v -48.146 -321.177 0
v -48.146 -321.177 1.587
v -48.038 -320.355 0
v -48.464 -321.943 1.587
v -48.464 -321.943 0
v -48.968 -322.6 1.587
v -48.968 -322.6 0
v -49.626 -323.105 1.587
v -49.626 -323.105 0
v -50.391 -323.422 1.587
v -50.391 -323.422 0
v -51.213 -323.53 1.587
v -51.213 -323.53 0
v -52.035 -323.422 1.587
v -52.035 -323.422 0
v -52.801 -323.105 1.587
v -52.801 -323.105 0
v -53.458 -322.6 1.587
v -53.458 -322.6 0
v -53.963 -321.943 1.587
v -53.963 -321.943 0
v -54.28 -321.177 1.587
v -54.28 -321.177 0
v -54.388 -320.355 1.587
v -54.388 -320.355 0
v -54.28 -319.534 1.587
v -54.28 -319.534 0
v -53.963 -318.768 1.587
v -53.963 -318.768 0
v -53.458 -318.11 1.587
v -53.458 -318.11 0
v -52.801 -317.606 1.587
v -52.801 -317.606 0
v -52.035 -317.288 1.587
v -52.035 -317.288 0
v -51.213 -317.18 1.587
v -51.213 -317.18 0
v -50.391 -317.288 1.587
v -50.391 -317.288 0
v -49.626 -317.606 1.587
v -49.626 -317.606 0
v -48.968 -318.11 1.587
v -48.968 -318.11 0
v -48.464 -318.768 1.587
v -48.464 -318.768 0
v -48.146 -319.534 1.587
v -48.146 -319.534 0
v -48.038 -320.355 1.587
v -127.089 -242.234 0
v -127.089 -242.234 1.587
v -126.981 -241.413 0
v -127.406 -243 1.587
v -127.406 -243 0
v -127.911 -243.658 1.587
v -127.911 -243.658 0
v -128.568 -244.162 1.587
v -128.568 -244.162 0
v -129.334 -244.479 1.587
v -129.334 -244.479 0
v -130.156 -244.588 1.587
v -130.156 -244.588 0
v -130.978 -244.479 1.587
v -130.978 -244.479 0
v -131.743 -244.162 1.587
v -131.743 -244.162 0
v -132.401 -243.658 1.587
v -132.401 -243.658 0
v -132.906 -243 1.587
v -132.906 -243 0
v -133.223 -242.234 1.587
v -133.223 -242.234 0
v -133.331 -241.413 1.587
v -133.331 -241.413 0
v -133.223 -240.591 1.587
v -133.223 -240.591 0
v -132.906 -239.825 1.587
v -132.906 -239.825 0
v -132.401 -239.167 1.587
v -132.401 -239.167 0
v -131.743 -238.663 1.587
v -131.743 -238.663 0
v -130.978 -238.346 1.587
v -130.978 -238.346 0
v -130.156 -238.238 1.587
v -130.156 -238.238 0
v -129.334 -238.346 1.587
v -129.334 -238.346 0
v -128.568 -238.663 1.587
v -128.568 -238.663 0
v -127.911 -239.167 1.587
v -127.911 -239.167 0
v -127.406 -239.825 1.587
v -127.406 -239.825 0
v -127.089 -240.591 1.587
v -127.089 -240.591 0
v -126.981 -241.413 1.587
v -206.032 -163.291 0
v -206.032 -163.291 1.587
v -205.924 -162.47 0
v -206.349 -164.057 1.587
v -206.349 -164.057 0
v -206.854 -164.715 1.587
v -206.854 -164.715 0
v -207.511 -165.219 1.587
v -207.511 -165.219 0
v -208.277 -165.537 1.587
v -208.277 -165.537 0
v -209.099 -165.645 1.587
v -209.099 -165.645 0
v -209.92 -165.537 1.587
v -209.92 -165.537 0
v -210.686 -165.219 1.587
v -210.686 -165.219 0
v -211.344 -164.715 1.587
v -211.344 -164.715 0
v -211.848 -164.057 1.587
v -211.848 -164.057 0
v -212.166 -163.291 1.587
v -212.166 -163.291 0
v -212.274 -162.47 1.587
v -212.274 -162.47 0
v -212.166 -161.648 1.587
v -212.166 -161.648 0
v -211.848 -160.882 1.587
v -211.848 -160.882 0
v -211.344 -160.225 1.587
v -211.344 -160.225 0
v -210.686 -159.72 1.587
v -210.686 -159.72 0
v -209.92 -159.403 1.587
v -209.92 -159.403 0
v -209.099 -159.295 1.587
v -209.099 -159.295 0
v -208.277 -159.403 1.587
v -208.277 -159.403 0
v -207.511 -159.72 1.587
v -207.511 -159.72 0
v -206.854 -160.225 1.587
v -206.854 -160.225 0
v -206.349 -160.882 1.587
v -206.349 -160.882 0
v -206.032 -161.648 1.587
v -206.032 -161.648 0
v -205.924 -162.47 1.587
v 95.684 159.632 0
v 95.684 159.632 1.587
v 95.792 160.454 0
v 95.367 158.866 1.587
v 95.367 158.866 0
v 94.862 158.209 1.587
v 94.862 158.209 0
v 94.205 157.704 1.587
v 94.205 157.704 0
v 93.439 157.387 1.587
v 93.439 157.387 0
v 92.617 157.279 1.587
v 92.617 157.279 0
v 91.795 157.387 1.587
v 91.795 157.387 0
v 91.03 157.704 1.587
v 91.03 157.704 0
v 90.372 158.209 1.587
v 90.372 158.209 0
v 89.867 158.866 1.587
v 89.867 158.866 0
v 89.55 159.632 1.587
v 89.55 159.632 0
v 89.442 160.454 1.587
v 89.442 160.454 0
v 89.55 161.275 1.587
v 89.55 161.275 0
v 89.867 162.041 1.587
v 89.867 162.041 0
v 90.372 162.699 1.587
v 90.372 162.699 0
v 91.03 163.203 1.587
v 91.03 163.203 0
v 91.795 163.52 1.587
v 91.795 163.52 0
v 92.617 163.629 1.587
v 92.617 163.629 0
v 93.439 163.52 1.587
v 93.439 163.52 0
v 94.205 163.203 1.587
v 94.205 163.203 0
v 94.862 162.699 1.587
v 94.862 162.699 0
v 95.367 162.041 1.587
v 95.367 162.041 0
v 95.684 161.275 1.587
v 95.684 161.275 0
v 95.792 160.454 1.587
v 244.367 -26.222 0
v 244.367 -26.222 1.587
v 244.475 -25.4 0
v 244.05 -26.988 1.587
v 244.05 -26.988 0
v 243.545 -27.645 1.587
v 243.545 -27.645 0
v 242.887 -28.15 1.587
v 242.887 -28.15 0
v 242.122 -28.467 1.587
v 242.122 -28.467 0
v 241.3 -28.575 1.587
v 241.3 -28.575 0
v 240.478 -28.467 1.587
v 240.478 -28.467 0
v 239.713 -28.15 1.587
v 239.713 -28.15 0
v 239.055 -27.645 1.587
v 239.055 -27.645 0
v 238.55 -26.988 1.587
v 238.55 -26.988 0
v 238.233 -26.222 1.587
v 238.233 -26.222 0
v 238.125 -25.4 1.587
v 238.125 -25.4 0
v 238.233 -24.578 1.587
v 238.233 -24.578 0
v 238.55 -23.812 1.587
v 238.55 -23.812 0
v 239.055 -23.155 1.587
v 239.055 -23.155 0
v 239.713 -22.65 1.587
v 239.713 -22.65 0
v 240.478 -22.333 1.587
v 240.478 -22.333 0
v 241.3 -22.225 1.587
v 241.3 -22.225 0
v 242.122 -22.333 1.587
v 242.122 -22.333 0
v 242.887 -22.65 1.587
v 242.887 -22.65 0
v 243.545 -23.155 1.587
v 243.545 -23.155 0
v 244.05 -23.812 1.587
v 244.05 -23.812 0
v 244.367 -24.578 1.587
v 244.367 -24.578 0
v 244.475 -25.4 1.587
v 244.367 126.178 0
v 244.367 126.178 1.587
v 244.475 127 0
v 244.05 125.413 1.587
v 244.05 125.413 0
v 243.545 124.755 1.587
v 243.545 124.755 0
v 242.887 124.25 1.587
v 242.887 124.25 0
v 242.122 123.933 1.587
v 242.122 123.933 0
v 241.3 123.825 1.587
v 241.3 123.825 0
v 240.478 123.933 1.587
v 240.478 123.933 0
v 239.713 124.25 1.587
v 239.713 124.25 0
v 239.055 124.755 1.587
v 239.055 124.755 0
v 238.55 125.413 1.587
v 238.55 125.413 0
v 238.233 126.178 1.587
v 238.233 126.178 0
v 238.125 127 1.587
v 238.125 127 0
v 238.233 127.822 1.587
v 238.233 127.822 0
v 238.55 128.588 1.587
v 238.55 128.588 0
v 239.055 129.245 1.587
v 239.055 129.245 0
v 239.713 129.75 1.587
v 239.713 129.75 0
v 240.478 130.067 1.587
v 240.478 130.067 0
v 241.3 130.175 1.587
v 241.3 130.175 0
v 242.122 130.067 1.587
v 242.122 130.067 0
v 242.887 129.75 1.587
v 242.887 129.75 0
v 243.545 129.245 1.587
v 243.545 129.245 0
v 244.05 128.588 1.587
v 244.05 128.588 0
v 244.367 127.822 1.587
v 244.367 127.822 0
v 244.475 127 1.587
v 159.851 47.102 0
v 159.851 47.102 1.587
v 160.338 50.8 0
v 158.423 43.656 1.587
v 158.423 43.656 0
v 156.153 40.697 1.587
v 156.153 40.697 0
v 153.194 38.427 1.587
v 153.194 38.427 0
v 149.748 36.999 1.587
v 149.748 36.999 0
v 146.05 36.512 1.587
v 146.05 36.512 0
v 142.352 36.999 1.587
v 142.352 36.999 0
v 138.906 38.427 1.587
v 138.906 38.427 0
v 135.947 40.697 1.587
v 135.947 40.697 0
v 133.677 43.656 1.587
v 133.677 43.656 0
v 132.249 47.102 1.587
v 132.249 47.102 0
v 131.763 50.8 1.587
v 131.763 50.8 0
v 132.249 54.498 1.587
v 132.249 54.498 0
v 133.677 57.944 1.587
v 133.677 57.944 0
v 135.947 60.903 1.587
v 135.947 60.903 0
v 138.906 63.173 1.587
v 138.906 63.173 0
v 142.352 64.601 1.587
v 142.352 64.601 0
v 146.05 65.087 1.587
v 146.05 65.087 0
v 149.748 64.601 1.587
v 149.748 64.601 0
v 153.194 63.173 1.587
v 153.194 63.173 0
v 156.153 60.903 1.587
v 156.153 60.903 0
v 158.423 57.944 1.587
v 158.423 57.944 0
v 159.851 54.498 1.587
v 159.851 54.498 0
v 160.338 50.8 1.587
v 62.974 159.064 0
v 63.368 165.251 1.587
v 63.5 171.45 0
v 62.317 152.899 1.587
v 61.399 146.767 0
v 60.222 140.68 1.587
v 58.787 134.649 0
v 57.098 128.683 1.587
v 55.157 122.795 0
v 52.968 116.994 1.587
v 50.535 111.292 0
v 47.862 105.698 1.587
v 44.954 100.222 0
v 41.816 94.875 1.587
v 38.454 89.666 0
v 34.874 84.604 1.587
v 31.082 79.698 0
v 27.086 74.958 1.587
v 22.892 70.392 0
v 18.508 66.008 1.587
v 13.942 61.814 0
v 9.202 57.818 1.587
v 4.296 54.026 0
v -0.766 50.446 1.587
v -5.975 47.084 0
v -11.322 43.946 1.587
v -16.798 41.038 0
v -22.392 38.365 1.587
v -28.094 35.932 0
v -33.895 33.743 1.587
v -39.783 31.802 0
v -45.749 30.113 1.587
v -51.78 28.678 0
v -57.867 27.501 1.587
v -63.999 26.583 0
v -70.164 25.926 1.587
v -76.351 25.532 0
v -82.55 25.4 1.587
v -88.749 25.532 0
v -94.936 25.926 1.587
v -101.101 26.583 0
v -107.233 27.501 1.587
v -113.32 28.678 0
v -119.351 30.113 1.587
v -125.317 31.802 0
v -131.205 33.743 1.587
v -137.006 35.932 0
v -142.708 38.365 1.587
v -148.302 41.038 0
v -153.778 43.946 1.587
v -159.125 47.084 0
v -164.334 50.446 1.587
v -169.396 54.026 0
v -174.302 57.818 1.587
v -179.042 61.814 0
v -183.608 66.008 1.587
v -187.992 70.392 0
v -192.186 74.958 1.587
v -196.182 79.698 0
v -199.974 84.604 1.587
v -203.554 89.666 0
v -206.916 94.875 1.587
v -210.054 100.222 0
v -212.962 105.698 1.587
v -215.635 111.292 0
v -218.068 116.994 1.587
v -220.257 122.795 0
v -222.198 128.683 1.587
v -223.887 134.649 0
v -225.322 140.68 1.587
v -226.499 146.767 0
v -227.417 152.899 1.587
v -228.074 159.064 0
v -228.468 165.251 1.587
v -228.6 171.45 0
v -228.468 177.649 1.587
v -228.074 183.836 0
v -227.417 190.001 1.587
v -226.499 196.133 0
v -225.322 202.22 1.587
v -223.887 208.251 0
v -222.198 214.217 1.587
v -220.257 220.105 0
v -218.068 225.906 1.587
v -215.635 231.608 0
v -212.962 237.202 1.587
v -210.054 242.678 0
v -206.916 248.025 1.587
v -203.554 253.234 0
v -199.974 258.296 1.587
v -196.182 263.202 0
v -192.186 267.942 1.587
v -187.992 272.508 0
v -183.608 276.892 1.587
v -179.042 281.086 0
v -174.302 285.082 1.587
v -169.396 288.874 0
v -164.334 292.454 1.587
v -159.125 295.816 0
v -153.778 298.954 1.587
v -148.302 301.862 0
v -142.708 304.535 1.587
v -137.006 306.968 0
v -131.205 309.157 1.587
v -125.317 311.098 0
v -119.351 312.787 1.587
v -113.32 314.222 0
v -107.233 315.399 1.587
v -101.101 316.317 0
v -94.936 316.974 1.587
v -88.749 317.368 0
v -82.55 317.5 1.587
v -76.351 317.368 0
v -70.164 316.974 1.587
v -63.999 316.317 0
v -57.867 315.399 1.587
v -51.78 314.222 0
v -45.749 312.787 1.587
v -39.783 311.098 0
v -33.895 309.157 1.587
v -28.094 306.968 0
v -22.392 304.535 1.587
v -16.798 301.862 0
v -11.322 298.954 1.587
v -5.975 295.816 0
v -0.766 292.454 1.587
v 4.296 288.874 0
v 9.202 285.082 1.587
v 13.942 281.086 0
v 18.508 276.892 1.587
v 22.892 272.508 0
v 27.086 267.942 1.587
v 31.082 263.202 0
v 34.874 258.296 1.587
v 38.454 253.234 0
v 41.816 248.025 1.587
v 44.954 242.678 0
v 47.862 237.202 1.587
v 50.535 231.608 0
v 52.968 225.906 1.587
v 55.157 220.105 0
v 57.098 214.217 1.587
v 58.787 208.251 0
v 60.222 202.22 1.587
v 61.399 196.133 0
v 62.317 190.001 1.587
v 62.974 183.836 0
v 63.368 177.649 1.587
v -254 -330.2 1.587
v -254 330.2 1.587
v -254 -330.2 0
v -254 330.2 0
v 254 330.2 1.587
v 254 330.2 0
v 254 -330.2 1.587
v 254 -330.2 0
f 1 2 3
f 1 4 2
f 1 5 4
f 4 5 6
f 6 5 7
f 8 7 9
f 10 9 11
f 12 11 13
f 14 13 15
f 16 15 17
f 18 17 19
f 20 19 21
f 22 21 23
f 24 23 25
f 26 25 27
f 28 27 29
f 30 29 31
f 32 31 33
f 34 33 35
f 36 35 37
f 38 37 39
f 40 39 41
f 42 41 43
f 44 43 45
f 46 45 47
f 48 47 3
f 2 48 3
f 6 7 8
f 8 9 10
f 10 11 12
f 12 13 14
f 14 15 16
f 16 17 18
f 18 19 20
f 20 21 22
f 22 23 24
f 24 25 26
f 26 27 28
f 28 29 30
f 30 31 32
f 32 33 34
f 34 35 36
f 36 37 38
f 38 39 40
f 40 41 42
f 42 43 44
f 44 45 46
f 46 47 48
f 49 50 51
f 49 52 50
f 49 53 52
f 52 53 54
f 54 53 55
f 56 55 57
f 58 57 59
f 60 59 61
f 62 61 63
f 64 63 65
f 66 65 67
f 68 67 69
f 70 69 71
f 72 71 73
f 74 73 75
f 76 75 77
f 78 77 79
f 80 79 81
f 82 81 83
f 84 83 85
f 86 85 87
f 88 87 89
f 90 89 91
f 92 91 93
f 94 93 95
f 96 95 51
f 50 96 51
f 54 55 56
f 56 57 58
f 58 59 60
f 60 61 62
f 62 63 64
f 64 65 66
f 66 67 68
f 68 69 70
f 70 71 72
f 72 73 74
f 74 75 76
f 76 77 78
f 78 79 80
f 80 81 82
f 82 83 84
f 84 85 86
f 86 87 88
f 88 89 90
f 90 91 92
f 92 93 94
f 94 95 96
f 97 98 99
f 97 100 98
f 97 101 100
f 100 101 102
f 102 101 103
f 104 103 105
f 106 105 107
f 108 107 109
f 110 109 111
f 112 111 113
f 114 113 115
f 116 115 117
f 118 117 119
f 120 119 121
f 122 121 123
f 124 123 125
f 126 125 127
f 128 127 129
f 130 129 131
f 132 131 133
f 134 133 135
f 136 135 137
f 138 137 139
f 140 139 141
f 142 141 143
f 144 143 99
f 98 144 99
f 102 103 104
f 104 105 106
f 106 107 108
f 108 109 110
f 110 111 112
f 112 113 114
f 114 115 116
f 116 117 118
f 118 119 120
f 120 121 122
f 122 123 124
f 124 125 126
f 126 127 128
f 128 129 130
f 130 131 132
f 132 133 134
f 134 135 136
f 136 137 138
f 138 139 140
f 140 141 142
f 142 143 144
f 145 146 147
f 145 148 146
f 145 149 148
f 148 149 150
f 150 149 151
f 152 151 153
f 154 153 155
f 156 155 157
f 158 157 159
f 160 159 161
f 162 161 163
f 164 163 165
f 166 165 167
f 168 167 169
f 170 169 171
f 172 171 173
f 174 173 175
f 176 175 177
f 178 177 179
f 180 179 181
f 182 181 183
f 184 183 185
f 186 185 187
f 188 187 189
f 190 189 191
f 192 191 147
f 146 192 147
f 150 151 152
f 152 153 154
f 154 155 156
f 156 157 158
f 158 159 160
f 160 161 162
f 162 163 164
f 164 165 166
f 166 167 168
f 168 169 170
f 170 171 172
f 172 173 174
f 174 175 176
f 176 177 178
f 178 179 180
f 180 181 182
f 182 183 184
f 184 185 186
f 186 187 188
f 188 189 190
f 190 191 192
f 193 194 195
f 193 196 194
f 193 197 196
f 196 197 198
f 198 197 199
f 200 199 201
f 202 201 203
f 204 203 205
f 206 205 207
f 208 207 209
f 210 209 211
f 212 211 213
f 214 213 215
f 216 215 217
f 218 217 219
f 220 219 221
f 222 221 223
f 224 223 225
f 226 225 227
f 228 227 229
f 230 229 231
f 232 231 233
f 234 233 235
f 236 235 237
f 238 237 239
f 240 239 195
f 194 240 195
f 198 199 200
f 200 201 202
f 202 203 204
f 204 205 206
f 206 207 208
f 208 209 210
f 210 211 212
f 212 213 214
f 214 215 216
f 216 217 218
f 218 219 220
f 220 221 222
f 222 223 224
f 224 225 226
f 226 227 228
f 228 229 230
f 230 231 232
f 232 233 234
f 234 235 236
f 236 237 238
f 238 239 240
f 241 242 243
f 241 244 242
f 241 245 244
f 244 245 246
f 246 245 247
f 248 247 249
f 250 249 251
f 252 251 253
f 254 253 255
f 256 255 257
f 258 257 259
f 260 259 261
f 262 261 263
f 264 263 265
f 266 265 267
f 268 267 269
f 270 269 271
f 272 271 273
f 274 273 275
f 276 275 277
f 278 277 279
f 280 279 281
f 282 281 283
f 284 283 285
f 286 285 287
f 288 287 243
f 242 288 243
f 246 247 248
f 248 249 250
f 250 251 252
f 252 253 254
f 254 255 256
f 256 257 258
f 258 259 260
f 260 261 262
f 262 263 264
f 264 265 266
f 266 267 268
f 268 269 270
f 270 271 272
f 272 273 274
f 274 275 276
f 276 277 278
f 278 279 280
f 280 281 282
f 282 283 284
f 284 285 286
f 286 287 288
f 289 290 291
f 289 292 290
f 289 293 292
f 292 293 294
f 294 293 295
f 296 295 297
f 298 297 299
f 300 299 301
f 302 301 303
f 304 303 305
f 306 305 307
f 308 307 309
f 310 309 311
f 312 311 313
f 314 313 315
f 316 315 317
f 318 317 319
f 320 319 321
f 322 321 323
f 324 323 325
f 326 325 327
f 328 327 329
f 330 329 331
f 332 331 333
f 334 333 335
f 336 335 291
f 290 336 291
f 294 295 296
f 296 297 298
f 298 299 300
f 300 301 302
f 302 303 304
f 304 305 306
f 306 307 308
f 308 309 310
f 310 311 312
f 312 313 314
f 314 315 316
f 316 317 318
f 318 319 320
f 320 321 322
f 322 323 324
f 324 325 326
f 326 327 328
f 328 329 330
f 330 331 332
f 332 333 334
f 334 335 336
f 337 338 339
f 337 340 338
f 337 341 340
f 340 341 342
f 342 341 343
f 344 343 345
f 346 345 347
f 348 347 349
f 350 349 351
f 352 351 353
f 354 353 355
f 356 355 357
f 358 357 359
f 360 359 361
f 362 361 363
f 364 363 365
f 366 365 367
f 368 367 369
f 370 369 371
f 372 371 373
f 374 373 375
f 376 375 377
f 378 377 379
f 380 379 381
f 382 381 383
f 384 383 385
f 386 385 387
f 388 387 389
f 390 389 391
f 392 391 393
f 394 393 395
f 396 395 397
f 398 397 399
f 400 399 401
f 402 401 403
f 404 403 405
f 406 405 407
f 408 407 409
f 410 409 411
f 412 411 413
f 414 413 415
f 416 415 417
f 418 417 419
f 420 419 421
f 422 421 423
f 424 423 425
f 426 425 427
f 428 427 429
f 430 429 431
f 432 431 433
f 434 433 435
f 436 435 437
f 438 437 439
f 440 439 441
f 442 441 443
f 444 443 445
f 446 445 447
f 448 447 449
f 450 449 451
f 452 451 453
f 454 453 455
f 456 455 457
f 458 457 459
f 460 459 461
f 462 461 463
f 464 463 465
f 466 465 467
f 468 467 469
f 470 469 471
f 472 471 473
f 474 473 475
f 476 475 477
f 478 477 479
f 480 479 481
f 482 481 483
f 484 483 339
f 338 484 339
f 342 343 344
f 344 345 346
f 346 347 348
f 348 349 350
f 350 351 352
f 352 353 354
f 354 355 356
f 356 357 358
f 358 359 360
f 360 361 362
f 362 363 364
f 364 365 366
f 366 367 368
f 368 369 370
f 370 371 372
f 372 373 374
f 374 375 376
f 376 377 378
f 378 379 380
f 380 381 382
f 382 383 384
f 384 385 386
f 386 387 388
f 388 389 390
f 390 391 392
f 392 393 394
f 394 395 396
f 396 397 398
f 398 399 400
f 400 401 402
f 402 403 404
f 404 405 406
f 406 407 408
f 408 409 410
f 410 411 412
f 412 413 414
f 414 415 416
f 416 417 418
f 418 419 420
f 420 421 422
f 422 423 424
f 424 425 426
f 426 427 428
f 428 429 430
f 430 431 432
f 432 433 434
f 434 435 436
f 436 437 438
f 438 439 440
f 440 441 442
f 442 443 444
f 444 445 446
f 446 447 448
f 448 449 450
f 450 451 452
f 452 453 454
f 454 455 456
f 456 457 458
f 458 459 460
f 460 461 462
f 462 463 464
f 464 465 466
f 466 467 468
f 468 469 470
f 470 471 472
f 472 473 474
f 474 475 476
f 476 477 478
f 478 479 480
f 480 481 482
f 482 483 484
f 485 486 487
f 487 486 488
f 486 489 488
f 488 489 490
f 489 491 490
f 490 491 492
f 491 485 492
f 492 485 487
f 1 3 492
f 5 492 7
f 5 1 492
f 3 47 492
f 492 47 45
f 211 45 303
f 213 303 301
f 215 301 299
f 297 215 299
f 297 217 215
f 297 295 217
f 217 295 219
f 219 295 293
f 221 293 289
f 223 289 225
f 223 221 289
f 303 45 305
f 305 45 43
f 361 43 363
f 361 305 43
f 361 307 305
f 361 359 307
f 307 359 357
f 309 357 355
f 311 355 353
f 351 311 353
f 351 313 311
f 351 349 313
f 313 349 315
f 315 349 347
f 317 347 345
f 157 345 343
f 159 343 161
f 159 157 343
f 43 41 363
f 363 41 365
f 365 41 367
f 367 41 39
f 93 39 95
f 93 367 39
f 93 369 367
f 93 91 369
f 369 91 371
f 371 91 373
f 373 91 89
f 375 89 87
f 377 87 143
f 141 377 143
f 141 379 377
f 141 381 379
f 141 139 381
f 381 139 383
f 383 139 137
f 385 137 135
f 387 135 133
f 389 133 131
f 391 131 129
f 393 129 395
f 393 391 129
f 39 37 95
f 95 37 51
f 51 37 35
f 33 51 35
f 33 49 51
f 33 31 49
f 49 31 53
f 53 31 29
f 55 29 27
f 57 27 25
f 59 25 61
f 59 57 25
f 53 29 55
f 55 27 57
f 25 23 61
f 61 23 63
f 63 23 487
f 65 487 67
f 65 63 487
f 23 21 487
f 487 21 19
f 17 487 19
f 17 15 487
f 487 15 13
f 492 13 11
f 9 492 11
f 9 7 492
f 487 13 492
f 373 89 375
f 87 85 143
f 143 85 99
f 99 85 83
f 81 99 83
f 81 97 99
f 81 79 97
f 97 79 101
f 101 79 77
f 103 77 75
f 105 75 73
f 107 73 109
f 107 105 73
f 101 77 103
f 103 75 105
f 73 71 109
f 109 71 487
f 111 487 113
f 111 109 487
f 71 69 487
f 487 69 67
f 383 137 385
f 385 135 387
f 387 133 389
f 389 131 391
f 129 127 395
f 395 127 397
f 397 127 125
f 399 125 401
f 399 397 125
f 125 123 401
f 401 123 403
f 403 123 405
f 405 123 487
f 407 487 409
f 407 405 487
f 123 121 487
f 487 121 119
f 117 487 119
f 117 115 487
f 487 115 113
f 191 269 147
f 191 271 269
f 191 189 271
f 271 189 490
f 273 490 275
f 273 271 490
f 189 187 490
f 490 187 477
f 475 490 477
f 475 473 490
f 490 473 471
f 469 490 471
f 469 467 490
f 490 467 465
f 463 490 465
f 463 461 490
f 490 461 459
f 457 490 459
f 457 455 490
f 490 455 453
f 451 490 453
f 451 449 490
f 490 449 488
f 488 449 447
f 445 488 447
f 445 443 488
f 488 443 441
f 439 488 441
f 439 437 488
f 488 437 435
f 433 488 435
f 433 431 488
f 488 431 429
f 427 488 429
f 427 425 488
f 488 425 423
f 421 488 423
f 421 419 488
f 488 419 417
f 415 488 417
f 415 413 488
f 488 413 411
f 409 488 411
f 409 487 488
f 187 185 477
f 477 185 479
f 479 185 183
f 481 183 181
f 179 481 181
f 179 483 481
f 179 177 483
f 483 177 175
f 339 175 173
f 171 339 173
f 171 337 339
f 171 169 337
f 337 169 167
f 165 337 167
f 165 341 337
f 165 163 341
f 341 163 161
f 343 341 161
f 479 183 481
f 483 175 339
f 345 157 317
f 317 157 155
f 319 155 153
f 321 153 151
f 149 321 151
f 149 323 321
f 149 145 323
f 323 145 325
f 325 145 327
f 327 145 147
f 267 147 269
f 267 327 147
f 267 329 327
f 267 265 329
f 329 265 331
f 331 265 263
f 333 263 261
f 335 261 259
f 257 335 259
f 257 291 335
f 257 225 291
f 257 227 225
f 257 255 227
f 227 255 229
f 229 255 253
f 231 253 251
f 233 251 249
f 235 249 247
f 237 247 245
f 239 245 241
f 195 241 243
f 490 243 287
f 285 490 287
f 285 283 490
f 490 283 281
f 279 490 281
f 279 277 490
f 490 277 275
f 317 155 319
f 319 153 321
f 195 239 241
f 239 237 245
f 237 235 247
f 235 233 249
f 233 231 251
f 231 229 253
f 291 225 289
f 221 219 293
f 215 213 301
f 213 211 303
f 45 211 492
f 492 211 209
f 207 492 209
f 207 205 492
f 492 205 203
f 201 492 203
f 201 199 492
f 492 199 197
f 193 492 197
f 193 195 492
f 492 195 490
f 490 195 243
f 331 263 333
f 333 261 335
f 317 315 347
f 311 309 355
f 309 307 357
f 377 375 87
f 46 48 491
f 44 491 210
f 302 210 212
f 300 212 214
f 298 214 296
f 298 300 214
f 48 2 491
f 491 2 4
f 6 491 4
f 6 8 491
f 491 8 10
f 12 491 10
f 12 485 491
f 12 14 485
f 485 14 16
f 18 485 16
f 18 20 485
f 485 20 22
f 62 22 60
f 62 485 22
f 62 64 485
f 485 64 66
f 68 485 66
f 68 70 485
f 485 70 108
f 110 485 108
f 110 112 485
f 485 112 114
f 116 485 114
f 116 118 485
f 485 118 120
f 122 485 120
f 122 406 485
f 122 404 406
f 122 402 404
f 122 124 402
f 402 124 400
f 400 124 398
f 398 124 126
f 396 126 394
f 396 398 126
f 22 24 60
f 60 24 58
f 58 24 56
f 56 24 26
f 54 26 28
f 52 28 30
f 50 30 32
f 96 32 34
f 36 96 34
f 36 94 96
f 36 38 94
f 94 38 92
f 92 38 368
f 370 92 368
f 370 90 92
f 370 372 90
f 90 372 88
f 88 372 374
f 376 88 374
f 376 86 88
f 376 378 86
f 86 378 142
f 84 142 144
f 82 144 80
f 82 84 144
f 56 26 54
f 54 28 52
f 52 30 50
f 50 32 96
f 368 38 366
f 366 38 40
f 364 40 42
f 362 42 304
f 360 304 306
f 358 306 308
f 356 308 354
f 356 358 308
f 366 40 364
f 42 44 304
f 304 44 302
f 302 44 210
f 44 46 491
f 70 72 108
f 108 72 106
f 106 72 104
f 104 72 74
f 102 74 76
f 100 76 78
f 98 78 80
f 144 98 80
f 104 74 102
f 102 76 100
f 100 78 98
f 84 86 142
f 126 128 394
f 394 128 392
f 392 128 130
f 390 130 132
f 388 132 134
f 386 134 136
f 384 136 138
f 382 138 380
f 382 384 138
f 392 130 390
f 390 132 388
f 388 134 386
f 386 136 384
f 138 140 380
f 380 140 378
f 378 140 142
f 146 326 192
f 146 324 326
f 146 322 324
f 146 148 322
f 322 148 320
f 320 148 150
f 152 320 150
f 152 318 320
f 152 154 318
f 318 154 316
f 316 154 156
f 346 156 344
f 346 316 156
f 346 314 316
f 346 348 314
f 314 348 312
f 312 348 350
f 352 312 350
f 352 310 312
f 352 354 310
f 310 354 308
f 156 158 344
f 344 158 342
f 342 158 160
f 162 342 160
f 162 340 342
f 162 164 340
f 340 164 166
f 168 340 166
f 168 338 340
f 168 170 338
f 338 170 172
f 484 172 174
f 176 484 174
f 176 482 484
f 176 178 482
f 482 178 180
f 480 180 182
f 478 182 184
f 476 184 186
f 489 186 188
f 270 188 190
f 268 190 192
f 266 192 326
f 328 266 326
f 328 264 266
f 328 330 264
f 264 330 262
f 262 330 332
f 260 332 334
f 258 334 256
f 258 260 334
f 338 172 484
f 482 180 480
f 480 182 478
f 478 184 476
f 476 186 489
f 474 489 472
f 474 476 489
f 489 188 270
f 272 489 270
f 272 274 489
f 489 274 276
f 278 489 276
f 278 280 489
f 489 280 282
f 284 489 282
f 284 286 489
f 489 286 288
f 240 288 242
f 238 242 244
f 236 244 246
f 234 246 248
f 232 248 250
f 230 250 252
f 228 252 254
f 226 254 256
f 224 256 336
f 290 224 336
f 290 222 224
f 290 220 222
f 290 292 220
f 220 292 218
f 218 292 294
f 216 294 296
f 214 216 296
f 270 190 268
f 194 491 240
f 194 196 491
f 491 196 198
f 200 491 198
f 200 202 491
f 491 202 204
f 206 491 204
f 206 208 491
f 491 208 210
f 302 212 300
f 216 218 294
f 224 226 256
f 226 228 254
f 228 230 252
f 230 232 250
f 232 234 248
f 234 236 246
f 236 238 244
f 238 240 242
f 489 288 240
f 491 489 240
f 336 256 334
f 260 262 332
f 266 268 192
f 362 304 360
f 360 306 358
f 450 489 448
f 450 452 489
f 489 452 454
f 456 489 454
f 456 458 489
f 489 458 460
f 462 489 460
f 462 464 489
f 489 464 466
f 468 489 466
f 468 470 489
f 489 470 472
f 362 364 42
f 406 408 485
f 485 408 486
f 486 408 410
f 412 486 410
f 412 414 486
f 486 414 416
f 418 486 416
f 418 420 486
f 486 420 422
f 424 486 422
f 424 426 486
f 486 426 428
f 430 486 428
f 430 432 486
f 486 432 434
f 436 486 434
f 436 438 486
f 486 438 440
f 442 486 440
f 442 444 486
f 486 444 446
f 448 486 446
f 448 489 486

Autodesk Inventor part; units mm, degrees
ref_plane "YZ Plane" through (0, 0, 0) normal (1, 0, 0) x (0, 1, 0)
ref_plane "XZ Plane" through (0, 0, 0) normal (0, 1, 0) x (-1, 0, 0)
ref_plane "XY Plane" through (0, 0, 0) normal (0, 0, 1) x (1, 0, 0)
sketch "Sketch1" plane through (0, 0, 0) normal (0, 0, 1) x (1, 0, 0)
  line L0 (-254, -330.2) -> (254, -330.2)
  line L1 (254, -330.2) -> (254, 330.2)
  line L2 (254, 330.2) -> (-254, 330.2)
  line L3 (-254, 330.2) -> (-254, -330.2)
  point P0 (0, 0)
  dimension "d0" = 508
  dimension "d1" = 660.4
  dimension "d2" = 330.2
  dimension "d3" = 254
extrude "Extrusion1" add sketch "Sketch1" along normal blind 1.5875
sketch "Sketch2" plane through (0, 0, 1.5875) normal (0, 0, 1) x (1, 0, 0)
  line L0 (-254, -330.2) -> (-254, 330.2) projected
  line L1 (254, -330.2) -> (-254, -330.2) projected
  line L2 (-254, 330.2) -> (254, 330.2) projected
  circle A0 centre (-82.55, 171.45) radius 146.05
  circle A1 centre (146.05, 50.8) radius 95.25
  arc A2 (-228.6, 50.8) -> (146.05, -323.85) centre (146.05, 50.8) ccw
  line L3 (-228.6, 50.8) -> (-228.6, 203.2)
  line L4 (146.05, -323.85) -> (222.25, -323.85)
  circle A3 centre (146.05, 50.8) radius 14.2875
  circle A4 centre (76.4372, 288.4526) radius 3.175
  circle A5 centre (171.4841, 288.4526) radius 3.175
  line L5 (254, 330.2) -> (254, -330.2) projected
  point P0 (0, 0)
  point P1 (-82.55, 317.5)
  point P2 (-10.4279, 298.45)
  dimension "d6" = 292.1
  dimension "d7" = 158.75
  dimension "d8" = 171.45
  dimension "d11" = 190.5
  dimension "d16" = 152.4
  dimension "d19" = 76.2
  dimension "d23" = 28.575
  dimension "d27" = 279.4
  dimension "d28" = 25.4
  dimension "d29" = 6.35
  dimension "d31" = 381
  dimension "d33" = 6.35
  dimension "d34" = 6.35
  dimension "d215" = 107.95
extrude "Extrusion2" cut sketch "Sketch2" against normal blind 93.6625 contours A0 | A3
sketch "Sketch10" plane through (0, 0, 1.5875) normal (0, 0, 1) x (1, 0, 0)
  circle A0 centre (146.05, 50.8) radius 14.2875 projected
  line L0 (254, 330.2) -> (254, -330.2) projected
  circle A1 centre (241.3, 127) radius 3.175
  circle A2 centre (241.3, -25.4) radius 3.175
  circle A3 centre (92.6171, 160.4537) radius 3.175
  line L1 (241.3, -25.4) -> (241.3, 127) construction
  line L2 (241.3, 127) -> (92.6171, 160.4537) construction
  line L3 (146.05, 50.8) -> (241.3, -25.4) construction
  line L4 (146.05, 50.8) -> (241.3, 127) construction
  line L5 (146.05, 50.8) -> (92.6171, 160.4537) construction
  point P0 (0, 0)
  dimension "d208" = 6.35
  dimension "d210" = 12.7
  dimension "d214" = 152.4
extrude "Extrusion10" cut sketch "Sketch10" against normal up to next contours A1 | A2 | A3
sketch "Sketch11" plane through (0, 0, 1.5875) normal (0, 0, 1) x (1, 0, 0)
  line L0 (-254, -330.2) -> (-254, 330.2) projected
  line L1 (254, -330.2) -> (-254, -330.2) projected
  line L2 (-254, -330.2) -> (-254, -171.45) construction
  line L3 (-254, -171.45) -> (-95.25, -330.2) construction
  line L4 (-254, -330.2) -> (-95.25, -330.2) construction
  circle A0 centre (-209.0987, -162.4697) radius 3.175
  circle A1 centre (-130.1559, -241.4125) radius 3.175
  circle A2 centre (-51.2132, -320.3553) radius 3.175
  line L5 (-209.0987, -162.4697) -> (-130.1559, -241.4125) construction
  line L6 (-130.1559, -241.4125) -> (-51.2132, -320.3553) construction
  line L7 (-254, -171.45) -> (-217.3278, -134.7778) construction
  point P0 (0, 0)
  dimension "d216" = 158.75
  dimension "d217" = 158.75
  dimension "d218" = 6.35
  dimension "d219" = 38.1
  dimension "d220" = 25.4
extrude "Extrusion11" cut sketch "Sketch11" against normal up to next
equation "\"d2\" = 0.5 * d1"
equation "\"d3\" = 0.5 * d0"
properties part number "Shooter Plate"
